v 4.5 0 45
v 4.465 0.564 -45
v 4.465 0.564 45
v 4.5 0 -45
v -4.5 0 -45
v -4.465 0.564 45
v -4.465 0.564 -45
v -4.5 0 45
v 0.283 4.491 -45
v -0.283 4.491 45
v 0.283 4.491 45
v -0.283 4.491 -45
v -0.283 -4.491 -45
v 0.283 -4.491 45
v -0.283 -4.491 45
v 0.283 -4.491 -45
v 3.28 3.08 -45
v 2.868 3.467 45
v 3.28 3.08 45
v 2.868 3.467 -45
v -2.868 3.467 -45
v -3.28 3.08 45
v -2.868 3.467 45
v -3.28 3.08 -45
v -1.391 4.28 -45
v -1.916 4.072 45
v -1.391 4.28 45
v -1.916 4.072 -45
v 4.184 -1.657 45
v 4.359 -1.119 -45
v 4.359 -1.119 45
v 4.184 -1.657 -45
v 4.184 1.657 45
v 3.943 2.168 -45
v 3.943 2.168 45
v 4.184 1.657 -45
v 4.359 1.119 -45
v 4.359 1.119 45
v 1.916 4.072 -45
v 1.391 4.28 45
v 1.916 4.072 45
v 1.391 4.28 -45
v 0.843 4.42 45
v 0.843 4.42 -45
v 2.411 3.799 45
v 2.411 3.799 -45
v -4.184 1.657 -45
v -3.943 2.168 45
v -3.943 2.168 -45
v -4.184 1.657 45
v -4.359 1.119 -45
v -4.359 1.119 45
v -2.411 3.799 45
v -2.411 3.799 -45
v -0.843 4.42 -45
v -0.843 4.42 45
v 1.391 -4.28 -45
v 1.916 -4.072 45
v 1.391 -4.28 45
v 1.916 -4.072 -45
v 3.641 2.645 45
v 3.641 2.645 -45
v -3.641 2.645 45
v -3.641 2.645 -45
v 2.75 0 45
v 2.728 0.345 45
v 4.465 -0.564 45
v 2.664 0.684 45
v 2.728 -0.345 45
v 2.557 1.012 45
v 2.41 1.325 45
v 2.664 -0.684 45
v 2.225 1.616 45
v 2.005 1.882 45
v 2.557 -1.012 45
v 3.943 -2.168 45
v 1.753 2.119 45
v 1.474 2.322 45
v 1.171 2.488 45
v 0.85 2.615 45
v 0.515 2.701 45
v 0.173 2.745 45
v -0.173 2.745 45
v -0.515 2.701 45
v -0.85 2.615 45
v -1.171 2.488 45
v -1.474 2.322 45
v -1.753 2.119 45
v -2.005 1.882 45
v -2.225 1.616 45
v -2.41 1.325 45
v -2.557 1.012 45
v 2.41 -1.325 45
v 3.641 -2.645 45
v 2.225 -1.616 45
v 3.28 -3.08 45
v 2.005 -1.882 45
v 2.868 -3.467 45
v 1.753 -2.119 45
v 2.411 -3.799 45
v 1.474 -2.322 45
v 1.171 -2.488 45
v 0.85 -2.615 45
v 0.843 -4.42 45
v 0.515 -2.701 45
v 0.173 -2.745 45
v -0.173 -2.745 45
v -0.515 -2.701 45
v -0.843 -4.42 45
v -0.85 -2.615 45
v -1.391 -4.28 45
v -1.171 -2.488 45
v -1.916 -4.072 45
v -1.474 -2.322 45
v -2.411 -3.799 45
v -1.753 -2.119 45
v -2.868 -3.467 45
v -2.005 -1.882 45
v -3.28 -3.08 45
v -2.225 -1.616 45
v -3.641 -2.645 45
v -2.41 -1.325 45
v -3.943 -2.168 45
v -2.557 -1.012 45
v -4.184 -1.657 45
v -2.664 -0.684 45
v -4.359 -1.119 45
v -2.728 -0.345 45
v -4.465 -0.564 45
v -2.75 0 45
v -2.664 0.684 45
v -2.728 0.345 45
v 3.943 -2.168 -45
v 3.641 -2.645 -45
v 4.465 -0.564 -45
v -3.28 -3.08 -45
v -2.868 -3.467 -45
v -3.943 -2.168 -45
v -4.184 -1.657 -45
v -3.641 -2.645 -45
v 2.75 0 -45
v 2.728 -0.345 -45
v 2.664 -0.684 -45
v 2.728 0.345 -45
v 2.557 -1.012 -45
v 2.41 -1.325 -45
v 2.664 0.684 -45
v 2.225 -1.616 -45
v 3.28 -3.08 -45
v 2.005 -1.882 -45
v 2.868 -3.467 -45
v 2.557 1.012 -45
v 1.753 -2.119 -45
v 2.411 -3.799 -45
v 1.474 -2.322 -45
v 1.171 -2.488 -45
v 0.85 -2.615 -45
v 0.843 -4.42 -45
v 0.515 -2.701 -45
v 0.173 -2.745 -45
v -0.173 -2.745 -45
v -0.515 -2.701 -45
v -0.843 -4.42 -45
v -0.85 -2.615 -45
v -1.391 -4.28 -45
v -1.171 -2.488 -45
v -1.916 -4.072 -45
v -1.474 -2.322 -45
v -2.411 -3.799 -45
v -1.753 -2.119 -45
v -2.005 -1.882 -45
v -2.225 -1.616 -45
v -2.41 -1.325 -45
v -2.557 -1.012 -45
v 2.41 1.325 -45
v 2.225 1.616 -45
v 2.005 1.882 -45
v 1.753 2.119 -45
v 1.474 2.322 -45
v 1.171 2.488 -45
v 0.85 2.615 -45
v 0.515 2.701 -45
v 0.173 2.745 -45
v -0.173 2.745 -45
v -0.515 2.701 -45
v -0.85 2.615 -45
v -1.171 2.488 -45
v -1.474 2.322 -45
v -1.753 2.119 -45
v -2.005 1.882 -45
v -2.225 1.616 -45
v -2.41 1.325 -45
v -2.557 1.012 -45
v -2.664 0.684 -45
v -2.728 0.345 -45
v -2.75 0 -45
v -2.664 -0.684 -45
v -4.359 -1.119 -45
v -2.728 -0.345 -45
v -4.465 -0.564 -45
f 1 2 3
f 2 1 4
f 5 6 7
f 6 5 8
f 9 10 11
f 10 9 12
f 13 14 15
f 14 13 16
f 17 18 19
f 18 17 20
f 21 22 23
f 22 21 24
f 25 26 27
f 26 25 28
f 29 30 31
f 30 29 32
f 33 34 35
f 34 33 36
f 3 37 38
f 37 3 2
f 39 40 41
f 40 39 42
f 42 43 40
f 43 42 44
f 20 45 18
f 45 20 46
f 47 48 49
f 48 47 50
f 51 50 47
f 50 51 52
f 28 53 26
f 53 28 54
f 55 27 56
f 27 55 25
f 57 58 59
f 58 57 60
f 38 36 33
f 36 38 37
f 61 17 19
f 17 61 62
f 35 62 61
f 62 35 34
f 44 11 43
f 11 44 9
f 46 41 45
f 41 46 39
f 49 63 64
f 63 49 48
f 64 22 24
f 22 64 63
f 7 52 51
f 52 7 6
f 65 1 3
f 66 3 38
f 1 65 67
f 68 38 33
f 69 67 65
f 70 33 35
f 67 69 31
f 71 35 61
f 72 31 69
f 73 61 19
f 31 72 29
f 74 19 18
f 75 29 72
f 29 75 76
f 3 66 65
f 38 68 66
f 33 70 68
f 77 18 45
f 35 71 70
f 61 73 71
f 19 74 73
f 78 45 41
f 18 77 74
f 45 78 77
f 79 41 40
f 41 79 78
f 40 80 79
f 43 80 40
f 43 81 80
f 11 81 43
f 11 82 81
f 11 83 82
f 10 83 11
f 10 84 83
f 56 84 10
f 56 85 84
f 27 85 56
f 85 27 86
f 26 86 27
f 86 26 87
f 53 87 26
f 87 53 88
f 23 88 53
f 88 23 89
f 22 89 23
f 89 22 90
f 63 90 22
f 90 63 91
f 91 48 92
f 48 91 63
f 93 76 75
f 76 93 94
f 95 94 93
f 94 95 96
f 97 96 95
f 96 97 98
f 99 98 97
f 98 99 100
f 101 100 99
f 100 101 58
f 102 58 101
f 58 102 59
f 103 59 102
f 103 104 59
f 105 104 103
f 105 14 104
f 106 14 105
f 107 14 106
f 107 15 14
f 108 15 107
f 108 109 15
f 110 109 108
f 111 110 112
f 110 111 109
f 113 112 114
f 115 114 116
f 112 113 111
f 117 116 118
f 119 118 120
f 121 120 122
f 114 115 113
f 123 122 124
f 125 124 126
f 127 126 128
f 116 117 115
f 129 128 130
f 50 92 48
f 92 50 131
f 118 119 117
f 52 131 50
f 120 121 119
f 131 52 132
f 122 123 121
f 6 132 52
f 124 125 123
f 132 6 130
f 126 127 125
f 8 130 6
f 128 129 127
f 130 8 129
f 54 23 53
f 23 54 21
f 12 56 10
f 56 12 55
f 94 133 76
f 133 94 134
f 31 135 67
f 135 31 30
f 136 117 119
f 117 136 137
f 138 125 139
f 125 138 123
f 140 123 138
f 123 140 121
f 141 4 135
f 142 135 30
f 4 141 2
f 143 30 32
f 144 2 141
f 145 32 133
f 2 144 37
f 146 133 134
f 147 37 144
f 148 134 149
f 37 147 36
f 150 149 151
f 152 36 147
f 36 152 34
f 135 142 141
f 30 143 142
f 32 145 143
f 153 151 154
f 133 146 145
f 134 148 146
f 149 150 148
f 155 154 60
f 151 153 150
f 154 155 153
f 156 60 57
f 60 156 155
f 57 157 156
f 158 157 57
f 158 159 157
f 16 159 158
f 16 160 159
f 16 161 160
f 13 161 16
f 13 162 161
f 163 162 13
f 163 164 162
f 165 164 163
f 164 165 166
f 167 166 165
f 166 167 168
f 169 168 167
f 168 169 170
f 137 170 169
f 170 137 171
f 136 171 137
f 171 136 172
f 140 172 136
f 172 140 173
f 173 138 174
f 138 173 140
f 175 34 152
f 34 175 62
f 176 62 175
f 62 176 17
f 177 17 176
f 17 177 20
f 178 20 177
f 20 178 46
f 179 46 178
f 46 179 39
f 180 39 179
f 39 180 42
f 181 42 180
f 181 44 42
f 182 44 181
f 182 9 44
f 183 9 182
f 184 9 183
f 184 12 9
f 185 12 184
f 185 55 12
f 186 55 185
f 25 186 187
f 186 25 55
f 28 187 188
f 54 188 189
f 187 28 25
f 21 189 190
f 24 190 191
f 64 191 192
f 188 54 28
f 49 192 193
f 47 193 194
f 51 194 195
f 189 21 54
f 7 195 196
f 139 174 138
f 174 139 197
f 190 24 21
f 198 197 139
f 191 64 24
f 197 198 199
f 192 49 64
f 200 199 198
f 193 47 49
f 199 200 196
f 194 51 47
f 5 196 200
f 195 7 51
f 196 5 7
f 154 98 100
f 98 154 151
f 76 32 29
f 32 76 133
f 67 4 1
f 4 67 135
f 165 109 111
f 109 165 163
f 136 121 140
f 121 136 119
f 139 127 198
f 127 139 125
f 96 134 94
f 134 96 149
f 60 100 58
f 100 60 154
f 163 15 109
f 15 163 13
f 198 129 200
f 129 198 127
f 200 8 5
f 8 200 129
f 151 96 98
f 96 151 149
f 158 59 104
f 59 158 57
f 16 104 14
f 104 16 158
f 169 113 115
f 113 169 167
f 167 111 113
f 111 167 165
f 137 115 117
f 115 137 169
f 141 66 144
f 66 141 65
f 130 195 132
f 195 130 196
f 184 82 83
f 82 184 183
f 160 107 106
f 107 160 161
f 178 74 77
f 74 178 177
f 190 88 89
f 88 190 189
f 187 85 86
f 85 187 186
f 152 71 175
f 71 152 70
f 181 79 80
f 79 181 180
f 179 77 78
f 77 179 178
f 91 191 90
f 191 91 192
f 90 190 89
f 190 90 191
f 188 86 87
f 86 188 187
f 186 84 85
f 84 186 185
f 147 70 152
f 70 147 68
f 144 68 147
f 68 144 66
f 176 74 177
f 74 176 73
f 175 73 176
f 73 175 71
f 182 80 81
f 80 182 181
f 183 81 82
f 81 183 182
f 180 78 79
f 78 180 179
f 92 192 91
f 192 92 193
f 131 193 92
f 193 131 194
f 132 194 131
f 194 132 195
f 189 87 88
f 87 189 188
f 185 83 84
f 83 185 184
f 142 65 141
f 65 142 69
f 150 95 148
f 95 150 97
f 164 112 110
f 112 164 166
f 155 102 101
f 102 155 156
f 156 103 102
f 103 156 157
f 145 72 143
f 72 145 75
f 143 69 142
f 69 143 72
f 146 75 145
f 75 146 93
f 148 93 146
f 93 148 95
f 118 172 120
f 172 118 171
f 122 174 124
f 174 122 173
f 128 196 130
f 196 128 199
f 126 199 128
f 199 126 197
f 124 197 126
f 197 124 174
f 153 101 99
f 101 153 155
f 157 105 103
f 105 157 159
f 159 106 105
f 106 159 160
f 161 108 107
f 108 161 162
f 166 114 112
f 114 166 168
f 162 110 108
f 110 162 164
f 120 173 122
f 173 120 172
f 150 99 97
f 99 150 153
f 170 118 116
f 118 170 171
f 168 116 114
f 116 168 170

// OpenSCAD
$fn = 50;


difference() {
	union() {
		translate(v = [0, 0, -45.0000000000]) {
			cylinder(h = 90, r = 4.5000000000);
		}
	}
	union() {
		translate(v = [0, 0, -100.0000000000]) {
			cylinder(h = 200, r = 2.7500000000);
		}
	}
}
